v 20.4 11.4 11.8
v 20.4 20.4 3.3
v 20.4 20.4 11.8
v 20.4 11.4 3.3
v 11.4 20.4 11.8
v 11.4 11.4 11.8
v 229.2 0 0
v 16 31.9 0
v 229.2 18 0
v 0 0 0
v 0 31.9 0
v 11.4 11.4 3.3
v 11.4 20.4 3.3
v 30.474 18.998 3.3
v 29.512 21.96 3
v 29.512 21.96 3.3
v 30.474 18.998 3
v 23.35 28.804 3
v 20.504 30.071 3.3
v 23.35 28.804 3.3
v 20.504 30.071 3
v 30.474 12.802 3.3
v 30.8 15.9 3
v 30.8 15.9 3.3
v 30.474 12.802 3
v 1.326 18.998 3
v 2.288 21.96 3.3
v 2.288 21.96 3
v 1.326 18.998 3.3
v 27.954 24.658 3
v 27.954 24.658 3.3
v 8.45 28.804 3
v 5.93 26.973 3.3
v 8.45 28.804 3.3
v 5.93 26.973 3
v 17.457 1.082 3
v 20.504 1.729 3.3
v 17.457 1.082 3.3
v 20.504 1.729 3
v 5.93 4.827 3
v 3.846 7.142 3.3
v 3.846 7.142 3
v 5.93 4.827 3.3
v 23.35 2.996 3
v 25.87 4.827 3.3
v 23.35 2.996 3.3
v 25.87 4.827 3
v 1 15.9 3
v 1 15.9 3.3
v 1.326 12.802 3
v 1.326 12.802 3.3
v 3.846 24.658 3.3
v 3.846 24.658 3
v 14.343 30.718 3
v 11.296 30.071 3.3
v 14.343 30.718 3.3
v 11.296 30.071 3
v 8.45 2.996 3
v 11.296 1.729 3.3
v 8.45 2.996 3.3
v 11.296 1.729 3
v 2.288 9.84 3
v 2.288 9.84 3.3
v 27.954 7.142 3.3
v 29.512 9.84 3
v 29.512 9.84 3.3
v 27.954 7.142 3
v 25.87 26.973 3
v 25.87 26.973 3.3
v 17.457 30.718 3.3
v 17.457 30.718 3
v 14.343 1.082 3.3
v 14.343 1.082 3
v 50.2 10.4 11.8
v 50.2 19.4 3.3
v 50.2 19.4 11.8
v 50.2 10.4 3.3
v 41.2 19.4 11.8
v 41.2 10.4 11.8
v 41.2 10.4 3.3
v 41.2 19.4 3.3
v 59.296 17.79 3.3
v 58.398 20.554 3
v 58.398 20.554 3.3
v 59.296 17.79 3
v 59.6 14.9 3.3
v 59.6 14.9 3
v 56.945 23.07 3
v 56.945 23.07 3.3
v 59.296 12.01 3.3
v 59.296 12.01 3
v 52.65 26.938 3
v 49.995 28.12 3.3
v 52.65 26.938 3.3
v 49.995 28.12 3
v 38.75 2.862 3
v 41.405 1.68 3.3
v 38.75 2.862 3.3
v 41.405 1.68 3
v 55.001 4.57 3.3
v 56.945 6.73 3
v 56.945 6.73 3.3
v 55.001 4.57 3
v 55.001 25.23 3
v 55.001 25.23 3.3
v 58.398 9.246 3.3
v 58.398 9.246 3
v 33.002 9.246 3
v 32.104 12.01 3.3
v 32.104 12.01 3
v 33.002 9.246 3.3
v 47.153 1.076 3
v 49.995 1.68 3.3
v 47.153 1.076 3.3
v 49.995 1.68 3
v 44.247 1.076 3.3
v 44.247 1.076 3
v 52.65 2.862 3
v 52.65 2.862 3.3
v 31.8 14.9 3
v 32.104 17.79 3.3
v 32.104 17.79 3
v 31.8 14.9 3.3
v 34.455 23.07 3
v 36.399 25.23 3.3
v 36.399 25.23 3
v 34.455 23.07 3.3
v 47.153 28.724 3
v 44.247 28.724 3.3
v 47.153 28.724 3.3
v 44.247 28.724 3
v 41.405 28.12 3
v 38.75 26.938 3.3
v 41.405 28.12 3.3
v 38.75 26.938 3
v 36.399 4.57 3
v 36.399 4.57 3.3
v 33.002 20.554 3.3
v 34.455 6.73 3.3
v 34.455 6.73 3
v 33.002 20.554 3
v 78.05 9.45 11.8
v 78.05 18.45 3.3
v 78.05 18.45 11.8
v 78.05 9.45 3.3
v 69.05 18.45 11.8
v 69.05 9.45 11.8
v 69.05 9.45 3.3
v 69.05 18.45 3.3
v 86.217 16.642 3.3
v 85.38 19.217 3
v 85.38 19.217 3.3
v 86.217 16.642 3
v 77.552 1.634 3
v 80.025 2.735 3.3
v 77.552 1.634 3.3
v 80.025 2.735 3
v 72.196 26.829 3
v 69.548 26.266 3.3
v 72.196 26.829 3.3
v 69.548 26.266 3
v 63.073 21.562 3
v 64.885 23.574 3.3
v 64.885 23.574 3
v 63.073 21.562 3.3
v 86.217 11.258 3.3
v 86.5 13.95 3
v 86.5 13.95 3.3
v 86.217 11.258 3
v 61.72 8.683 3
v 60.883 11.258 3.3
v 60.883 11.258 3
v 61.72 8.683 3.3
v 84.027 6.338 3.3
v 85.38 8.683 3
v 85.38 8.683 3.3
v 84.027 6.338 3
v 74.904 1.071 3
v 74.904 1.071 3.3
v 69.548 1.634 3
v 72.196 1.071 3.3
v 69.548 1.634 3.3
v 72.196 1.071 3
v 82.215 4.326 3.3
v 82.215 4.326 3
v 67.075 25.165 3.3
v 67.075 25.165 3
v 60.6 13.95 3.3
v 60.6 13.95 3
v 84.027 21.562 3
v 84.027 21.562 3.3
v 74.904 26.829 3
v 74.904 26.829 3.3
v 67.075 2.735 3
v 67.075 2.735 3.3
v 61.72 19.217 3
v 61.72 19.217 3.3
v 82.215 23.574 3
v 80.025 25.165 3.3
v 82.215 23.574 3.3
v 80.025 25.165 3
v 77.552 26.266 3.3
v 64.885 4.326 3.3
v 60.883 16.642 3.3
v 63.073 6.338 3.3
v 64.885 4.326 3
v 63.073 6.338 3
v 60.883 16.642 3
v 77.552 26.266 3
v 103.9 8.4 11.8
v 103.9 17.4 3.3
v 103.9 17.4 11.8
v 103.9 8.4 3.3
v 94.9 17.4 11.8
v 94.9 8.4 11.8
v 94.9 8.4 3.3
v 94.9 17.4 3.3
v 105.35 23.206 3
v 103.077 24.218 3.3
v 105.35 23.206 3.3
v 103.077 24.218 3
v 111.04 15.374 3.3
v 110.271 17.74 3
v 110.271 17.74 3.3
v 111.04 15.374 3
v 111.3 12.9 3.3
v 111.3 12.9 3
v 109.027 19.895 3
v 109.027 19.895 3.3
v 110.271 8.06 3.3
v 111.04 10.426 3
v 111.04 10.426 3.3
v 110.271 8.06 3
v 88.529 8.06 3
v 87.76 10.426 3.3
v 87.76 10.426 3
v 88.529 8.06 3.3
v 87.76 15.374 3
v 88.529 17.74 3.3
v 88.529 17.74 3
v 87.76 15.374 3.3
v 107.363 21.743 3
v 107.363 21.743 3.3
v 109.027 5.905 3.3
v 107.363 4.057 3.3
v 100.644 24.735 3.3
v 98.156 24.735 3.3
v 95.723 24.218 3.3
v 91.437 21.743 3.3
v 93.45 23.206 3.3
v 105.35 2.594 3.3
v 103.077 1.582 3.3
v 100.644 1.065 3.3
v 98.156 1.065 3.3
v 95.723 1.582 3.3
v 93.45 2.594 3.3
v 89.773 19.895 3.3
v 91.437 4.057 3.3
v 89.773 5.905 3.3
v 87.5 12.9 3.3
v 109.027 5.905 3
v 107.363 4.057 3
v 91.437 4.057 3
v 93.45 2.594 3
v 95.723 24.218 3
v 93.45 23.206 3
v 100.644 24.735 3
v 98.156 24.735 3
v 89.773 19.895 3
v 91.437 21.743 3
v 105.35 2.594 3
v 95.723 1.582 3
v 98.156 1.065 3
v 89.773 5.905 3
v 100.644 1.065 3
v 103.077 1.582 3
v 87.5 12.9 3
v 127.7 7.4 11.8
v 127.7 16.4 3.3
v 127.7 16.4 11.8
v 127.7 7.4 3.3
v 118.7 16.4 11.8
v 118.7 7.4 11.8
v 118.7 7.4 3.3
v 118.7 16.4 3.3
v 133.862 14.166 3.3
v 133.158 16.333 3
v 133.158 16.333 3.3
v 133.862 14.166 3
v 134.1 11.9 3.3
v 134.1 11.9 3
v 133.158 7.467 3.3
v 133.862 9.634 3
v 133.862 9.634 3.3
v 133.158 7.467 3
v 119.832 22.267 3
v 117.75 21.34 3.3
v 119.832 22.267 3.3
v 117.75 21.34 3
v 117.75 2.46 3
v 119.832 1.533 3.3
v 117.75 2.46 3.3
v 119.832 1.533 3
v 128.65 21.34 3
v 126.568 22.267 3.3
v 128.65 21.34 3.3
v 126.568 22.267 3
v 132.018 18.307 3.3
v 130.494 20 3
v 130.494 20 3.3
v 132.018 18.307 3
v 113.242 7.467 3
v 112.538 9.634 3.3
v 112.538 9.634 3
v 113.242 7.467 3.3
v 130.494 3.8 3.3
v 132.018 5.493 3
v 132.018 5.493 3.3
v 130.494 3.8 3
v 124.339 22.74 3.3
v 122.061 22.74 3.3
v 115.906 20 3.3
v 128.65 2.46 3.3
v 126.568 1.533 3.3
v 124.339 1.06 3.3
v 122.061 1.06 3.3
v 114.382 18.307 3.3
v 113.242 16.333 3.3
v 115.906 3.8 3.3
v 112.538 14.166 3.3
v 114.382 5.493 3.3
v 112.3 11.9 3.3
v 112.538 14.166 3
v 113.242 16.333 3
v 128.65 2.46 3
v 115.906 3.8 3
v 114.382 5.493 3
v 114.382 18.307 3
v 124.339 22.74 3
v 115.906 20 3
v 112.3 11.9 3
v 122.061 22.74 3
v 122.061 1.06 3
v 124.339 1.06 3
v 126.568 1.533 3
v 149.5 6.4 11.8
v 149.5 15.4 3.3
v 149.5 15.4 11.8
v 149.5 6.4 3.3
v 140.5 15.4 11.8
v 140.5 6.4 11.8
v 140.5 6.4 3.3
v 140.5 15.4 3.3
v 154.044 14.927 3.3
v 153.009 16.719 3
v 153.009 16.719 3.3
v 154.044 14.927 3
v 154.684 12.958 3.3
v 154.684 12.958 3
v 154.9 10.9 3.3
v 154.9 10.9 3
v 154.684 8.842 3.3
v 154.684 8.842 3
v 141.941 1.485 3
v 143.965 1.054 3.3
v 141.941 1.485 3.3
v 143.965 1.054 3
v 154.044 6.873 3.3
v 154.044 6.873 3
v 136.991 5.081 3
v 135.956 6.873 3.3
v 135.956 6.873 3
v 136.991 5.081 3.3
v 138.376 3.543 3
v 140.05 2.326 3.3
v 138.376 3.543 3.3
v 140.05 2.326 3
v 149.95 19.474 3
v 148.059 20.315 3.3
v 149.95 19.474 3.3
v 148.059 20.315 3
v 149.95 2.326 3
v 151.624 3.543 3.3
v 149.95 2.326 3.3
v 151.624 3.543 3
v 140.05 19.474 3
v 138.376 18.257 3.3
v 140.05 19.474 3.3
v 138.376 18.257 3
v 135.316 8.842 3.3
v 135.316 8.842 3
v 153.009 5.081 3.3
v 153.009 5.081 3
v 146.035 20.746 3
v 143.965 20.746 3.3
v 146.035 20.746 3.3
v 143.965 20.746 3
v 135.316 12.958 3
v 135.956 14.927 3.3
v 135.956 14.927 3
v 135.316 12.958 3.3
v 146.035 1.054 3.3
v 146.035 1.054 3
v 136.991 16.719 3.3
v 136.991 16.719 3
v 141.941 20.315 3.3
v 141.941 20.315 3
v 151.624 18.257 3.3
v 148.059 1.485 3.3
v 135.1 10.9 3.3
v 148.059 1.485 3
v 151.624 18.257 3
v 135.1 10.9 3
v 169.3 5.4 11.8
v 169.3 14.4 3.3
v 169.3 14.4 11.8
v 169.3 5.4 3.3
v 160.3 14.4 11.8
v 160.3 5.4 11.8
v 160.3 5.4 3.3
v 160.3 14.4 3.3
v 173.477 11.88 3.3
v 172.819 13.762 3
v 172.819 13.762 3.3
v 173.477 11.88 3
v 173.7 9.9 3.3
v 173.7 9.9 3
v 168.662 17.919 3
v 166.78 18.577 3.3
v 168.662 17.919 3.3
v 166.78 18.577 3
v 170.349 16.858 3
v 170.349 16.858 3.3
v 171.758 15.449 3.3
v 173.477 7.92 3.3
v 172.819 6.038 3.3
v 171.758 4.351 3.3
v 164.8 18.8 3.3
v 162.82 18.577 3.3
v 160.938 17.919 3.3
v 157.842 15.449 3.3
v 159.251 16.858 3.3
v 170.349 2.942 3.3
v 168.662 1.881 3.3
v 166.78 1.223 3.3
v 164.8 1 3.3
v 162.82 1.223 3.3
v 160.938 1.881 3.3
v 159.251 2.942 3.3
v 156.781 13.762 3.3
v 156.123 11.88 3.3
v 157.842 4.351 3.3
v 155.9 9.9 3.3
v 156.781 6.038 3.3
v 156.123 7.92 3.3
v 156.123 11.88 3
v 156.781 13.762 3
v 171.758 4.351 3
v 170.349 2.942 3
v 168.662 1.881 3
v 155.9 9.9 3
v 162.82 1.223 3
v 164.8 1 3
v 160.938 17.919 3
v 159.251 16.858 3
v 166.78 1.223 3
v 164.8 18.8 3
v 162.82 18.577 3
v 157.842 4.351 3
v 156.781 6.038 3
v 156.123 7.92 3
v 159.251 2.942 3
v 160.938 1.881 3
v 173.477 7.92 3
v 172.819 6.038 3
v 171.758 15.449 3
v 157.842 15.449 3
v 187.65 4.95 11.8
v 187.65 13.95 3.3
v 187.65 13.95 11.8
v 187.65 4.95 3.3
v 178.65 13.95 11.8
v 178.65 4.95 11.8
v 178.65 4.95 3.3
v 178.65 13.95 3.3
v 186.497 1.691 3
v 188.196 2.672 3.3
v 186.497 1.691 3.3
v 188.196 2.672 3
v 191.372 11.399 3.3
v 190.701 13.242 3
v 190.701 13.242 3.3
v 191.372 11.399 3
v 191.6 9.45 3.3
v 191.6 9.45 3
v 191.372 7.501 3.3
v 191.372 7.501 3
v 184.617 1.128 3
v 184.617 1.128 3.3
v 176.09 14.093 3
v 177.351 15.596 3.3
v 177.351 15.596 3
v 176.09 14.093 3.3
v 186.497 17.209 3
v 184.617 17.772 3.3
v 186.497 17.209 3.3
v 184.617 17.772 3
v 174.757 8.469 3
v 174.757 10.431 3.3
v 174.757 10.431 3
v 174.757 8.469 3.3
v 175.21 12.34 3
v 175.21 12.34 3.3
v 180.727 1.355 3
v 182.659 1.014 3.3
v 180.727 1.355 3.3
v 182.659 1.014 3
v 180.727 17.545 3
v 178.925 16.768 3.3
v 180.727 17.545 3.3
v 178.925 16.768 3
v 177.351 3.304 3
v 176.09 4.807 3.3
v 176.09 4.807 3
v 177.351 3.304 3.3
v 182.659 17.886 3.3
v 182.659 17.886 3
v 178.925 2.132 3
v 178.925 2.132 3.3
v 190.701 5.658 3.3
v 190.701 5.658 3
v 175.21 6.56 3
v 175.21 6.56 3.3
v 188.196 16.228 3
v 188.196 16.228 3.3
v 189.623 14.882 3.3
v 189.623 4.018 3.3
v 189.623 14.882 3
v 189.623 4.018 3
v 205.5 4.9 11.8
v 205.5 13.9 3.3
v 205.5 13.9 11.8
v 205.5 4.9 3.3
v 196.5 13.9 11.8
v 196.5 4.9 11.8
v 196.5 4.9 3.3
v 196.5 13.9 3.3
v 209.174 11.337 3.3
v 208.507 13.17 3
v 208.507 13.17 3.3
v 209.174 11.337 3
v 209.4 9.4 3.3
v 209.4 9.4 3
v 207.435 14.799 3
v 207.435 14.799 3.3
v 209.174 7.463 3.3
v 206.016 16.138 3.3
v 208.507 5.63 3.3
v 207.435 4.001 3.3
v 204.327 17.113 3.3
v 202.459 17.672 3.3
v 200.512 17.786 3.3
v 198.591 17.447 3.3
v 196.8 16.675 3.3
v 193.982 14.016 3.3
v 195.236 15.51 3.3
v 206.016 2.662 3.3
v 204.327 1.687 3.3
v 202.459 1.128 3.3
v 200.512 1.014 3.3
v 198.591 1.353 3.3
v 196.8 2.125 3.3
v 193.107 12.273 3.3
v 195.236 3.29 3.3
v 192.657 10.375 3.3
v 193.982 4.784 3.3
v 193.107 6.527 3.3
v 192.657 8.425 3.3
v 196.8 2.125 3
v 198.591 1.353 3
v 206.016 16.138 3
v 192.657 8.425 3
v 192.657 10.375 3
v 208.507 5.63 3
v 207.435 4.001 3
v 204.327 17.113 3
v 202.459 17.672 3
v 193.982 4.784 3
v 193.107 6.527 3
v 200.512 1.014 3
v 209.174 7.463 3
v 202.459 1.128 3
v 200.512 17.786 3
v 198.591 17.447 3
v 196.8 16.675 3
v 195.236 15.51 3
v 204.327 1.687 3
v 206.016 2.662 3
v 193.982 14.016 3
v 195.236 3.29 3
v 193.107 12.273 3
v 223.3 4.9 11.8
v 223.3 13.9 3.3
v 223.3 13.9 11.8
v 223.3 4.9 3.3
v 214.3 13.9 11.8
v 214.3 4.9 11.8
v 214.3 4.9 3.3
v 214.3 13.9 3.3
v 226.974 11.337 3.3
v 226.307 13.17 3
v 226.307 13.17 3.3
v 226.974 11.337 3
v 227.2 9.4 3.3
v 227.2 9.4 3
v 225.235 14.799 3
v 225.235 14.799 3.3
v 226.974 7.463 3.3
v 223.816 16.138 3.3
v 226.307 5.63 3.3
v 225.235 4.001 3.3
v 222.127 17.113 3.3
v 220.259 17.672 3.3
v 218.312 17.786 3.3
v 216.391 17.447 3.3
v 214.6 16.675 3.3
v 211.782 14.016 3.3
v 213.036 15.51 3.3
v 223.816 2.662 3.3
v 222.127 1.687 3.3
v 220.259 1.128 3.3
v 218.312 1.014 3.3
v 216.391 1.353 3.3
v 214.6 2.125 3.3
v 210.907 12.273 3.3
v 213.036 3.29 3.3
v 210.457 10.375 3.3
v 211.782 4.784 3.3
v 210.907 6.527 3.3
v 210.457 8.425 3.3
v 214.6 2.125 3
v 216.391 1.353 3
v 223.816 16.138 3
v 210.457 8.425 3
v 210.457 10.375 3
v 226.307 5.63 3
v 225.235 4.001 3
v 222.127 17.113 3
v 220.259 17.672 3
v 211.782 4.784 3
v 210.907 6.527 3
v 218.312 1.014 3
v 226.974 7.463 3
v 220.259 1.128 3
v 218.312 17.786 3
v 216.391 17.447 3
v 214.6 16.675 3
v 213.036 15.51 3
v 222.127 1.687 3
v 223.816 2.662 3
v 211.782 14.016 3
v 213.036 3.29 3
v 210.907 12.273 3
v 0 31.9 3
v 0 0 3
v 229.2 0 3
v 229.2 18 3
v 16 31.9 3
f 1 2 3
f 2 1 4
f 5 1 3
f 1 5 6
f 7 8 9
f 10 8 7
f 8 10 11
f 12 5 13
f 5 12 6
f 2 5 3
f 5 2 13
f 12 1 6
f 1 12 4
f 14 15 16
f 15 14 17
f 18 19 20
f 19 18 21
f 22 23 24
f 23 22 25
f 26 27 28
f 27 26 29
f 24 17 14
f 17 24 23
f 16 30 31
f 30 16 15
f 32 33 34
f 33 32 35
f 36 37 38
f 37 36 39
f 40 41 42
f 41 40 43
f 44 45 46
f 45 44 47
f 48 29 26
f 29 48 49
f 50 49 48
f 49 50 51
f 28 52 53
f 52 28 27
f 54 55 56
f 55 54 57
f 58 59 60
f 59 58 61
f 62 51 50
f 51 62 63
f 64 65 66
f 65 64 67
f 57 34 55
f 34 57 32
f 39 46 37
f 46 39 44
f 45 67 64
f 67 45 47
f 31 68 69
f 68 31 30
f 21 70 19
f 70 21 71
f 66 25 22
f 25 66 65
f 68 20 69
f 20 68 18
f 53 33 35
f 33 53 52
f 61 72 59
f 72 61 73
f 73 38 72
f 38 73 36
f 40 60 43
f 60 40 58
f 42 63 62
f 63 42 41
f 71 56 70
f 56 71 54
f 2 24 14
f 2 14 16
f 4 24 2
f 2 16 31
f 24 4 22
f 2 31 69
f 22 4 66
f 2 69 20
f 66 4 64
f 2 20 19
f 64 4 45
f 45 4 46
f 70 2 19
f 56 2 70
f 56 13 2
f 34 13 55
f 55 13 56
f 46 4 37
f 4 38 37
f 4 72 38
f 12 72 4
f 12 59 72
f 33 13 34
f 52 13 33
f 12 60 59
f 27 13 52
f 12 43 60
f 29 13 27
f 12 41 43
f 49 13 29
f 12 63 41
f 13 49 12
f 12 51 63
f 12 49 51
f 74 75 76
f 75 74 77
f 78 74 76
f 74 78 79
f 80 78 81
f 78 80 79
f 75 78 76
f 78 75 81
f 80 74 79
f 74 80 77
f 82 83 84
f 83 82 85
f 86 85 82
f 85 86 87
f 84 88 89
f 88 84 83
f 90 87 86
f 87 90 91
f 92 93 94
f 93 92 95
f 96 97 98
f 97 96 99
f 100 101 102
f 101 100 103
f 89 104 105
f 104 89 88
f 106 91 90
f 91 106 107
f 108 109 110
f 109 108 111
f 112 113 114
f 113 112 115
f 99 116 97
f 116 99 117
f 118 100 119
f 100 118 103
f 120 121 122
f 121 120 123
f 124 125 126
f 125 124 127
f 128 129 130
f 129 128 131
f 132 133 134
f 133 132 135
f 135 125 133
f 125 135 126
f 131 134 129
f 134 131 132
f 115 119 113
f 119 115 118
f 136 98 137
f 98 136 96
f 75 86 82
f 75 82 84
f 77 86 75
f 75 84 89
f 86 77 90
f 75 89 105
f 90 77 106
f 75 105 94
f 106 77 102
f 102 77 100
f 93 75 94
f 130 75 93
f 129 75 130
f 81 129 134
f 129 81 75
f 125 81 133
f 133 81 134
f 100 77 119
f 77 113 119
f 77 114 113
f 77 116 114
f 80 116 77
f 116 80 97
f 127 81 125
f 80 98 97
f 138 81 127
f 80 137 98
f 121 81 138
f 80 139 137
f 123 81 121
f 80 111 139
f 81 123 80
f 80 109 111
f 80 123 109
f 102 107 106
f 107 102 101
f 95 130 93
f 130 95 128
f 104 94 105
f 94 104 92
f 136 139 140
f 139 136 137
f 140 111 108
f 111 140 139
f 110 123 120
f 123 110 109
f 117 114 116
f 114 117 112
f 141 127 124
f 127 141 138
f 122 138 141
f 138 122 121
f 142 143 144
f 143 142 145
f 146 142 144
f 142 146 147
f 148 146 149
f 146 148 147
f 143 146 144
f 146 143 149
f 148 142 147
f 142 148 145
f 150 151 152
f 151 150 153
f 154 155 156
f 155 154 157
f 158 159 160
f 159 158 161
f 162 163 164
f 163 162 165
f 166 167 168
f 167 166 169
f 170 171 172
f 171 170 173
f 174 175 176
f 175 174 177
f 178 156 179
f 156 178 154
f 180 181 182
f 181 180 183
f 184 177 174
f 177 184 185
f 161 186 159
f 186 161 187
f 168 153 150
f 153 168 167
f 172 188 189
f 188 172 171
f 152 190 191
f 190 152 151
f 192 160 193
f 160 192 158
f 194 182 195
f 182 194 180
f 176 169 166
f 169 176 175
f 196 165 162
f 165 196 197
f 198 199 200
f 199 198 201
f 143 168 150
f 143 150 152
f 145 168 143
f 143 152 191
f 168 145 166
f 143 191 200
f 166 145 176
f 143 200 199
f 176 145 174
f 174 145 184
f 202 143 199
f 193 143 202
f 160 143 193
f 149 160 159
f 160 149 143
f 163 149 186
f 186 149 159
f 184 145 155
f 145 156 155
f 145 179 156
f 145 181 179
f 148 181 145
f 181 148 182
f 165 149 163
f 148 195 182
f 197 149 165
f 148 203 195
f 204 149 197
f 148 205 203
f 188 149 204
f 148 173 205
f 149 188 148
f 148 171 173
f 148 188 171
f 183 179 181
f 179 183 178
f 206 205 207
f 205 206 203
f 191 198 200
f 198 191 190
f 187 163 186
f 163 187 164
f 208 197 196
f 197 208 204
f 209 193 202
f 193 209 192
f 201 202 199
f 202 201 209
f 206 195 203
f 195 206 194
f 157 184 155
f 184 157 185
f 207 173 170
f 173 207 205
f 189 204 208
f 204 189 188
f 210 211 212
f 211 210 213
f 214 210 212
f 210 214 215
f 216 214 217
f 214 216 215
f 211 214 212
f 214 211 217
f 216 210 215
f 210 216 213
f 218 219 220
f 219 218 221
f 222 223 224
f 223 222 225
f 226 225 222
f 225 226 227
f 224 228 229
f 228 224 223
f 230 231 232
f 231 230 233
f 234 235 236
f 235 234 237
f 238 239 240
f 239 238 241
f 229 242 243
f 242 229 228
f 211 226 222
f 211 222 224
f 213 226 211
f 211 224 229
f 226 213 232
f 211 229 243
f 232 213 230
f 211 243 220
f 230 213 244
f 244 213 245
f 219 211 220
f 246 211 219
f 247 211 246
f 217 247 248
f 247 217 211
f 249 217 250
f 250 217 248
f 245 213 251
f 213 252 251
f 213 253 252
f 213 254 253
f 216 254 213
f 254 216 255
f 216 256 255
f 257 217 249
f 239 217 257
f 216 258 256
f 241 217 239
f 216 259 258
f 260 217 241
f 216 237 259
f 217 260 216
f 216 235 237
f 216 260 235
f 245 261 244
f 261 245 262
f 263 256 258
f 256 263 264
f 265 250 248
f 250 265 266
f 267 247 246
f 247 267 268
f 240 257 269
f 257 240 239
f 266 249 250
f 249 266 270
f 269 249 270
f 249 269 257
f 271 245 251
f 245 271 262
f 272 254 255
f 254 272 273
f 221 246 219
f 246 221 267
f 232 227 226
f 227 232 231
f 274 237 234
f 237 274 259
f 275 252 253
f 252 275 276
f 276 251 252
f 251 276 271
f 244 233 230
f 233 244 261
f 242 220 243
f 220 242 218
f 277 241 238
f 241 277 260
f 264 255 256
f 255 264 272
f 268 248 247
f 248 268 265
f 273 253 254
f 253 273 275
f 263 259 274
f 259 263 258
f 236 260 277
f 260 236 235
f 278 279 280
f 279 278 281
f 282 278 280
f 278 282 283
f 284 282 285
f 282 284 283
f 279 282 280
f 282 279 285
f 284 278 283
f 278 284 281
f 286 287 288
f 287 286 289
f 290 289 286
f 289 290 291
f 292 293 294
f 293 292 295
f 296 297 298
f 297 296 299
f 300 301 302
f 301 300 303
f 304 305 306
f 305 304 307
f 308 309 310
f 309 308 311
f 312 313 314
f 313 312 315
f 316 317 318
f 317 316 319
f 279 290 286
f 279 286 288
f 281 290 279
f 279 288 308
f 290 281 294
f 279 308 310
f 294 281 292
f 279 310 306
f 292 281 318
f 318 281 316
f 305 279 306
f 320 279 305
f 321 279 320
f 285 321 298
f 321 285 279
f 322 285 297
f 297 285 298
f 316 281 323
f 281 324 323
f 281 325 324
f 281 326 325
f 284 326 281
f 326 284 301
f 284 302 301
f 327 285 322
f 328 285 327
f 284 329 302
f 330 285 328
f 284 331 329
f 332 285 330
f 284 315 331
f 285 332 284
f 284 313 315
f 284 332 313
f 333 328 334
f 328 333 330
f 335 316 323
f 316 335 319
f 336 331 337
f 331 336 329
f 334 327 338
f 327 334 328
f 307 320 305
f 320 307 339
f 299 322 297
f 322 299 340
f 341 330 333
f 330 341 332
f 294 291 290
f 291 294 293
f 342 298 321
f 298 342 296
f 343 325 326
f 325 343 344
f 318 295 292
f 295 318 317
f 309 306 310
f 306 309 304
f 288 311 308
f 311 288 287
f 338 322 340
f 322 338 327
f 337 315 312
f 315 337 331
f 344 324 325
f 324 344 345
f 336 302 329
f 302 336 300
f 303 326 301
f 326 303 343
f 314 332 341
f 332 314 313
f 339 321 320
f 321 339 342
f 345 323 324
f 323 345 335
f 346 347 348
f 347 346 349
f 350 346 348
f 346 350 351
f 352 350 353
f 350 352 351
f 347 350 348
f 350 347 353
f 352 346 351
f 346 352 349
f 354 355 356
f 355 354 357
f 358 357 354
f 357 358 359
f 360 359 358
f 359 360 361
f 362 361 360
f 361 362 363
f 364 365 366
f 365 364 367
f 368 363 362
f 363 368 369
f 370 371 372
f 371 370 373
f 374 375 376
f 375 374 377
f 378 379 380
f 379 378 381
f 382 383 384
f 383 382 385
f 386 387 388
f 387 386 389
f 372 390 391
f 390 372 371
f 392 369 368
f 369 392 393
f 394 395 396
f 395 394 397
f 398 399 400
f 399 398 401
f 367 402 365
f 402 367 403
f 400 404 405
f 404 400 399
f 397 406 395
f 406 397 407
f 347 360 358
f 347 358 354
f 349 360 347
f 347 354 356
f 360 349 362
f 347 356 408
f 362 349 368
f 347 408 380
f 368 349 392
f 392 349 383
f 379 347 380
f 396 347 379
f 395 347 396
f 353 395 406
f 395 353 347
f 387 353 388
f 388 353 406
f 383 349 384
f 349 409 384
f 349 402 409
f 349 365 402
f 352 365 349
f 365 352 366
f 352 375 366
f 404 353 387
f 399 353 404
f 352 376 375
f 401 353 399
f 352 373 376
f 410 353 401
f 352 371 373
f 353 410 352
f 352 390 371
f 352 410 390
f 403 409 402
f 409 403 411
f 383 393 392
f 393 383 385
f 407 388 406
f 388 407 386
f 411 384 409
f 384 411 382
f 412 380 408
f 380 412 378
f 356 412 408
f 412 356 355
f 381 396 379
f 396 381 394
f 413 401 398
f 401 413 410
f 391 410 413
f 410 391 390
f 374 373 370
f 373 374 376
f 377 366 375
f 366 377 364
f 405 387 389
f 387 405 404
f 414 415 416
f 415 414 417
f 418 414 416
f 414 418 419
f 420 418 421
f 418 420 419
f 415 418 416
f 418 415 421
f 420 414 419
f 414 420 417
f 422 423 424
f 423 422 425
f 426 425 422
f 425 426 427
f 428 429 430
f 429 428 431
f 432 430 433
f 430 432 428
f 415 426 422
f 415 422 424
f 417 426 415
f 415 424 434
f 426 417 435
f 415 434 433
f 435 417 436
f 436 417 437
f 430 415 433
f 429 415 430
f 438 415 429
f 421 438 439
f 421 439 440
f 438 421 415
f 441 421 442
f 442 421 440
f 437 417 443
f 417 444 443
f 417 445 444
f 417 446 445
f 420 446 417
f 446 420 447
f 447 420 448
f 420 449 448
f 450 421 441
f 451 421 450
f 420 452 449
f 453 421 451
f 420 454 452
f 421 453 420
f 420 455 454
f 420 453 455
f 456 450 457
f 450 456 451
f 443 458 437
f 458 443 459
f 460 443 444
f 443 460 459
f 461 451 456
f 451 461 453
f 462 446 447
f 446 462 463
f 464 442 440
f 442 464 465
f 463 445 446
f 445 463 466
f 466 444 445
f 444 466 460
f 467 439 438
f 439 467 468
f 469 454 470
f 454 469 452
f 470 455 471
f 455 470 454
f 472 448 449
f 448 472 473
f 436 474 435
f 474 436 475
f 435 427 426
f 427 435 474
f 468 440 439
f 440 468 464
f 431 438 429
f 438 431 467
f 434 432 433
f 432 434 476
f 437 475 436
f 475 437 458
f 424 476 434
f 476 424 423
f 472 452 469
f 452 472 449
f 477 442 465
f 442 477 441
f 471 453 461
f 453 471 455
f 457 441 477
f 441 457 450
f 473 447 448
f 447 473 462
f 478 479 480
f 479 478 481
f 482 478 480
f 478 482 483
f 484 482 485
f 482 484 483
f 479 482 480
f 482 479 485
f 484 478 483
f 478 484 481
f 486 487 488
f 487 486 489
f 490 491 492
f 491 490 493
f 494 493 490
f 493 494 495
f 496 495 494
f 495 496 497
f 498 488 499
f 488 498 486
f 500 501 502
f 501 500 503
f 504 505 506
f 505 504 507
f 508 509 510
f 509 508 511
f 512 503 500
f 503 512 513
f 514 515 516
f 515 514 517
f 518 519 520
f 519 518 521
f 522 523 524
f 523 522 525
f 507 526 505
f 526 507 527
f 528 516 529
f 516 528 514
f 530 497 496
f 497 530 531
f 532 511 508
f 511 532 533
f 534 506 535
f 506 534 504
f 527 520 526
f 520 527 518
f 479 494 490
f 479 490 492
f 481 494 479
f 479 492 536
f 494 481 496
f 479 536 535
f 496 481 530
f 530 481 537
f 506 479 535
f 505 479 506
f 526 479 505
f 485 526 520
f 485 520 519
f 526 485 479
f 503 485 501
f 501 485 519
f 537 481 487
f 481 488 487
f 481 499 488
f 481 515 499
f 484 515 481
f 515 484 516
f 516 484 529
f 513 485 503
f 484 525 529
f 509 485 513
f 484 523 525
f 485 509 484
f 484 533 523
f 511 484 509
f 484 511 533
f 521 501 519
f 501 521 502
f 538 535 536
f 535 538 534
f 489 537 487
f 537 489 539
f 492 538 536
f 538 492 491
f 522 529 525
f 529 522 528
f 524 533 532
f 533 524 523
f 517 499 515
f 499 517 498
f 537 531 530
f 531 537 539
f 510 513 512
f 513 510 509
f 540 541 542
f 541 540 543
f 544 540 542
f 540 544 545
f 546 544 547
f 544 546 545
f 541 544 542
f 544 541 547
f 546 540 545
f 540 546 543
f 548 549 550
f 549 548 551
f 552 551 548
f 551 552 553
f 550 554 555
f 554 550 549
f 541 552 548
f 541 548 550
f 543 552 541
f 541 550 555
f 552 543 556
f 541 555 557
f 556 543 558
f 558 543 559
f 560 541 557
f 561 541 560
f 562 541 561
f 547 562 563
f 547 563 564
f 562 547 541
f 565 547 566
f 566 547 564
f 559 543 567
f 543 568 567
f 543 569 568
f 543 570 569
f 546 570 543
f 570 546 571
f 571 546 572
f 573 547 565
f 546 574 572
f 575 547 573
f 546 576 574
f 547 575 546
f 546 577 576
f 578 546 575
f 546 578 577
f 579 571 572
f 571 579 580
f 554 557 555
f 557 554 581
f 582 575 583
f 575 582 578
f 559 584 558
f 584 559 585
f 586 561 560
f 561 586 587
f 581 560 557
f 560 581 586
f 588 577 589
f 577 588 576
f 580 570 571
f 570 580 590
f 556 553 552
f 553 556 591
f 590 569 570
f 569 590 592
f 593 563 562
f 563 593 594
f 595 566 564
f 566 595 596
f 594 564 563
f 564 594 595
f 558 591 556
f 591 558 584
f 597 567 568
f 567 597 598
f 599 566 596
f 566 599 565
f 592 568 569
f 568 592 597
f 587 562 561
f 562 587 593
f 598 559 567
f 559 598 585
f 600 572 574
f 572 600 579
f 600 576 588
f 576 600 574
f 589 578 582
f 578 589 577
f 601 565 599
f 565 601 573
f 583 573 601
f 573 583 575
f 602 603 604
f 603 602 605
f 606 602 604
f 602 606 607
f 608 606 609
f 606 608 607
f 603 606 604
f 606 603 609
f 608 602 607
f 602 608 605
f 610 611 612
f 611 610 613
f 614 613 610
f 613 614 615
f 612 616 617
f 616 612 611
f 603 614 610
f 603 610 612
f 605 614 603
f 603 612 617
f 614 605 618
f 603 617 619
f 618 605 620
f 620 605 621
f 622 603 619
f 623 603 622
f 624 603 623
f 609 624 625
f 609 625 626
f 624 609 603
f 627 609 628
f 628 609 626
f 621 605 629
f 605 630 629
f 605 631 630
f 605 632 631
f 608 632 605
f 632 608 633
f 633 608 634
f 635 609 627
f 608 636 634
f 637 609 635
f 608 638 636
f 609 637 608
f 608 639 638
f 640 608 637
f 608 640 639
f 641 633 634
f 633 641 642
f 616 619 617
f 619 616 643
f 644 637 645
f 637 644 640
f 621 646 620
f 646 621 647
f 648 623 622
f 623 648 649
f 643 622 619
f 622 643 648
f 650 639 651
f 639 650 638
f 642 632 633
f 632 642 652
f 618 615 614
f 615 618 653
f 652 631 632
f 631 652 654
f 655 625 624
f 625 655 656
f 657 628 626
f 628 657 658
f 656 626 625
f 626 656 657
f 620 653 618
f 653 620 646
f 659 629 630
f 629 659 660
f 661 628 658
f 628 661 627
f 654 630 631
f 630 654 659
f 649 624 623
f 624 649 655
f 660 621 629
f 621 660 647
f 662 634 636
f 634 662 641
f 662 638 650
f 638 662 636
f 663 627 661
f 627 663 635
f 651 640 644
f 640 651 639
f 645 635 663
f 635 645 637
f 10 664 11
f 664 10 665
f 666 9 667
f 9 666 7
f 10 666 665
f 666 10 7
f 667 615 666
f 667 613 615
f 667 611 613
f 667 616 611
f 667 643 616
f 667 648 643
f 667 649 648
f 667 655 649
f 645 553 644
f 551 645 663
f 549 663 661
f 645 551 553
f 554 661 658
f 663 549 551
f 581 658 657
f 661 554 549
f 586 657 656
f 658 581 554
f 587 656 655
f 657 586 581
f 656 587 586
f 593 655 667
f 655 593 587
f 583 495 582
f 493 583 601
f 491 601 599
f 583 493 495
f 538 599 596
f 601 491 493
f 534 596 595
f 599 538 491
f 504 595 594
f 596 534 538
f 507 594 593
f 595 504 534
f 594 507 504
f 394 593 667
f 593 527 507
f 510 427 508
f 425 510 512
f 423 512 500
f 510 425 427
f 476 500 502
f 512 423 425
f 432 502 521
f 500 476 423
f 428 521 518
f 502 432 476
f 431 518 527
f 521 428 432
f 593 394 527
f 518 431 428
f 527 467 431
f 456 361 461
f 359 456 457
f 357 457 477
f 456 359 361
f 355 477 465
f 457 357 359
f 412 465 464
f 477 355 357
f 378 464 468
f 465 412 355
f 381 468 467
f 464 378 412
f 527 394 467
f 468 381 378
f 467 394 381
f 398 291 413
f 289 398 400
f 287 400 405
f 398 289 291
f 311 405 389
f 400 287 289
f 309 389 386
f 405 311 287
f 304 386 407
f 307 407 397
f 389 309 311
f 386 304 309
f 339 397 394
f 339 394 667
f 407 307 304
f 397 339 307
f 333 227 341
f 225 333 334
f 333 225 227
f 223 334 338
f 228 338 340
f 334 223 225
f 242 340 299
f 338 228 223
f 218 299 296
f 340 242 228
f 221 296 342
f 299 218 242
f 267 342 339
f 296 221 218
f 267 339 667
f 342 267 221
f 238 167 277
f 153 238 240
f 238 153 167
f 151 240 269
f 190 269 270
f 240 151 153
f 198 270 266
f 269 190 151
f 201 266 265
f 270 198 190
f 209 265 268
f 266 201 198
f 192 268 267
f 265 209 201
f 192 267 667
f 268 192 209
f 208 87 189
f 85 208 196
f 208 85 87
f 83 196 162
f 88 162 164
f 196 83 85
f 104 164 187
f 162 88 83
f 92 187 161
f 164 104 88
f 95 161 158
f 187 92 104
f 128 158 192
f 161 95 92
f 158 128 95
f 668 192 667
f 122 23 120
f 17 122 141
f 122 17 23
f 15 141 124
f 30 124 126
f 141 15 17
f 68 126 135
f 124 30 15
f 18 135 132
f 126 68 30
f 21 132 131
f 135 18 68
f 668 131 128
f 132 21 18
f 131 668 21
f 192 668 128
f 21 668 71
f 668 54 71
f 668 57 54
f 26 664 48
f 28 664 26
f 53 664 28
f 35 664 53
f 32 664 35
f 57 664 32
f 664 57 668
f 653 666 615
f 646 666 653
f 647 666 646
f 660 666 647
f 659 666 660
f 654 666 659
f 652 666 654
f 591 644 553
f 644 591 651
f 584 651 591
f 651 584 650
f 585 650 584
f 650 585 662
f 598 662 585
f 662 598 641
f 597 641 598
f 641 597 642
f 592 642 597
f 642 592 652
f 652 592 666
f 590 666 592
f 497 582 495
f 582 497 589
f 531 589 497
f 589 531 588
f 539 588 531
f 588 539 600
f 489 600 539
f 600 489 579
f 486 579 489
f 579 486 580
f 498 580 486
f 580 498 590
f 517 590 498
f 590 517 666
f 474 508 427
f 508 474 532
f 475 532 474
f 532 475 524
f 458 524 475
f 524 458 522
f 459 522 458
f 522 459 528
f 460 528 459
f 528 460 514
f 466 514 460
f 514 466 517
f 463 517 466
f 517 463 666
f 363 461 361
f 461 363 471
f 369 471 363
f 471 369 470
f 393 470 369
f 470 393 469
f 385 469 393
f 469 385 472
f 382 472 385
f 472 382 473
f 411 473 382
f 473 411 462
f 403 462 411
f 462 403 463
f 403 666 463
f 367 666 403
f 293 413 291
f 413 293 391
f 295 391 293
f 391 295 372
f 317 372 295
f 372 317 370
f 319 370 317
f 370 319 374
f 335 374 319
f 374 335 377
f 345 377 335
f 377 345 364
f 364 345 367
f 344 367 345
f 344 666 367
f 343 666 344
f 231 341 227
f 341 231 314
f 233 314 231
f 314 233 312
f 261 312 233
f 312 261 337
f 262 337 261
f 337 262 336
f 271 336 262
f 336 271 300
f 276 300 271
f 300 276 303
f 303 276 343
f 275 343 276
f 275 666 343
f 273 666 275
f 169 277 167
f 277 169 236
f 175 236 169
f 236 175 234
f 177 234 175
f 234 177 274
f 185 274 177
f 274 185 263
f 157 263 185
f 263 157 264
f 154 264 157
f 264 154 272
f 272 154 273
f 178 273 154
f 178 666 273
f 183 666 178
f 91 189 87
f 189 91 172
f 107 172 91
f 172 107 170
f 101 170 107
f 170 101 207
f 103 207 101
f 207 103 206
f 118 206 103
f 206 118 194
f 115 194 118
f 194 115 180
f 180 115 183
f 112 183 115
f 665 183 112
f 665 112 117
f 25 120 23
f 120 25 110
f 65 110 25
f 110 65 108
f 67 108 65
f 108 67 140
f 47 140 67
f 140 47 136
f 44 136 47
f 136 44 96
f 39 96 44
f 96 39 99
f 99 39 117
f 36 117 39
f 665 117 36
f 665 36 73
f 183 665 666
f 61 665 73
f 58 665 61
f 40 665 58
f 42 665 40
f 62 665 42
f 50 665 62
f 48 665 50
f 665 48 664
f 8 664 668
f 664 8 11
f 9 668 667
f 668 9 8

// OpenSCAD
pad_w = 229.2;
pad_d = 29.9+2;
pad_h = 3;
//cube([pad_w, pad_d, pad_h]);
linear_extrude(height=pad_h)
polygon(points=[
    [0,0],
    [0, pad_d],
    [16, pad_d],
    [pad_w, 18],
    [pad_w, 0]]);

module peg(x, y, d)
{
    w = 9;
    h = 11.8;
    translate([x - w/2, y - w/2, 0])
    {
        cube([w, w, h]);
    }
    translate([x, y, 0])
    cylinder(3.3, d/2, d/2);//just for checking
}
d7_8 = 29.8;
d13_16 = 27.8;
d3_4 = 25.9;
d11_16 = 23.8;
d5_8 = 21.8;
d9_16 = 19.8;
d1_2 = 17.8;
d7_16 = 16.9;
d3_8 = 16.8;
d5_16 = 16.8;

row1 = [
    d7_8,
    d13_16,
    d3_4,
    d11_16,
    d5_8,
    d9_16,
    d1_2,
    d7_16,
    d3_8,
    d5_16
];
interspace = 1.0;
x_vals = [
    for (
        i = 0, accum = 0.0;
        i < len(row1);
        accum = accum + row1[i] + interspace, i = i + 1
    )
    accum
];

for ( i = [ 0 : len(row1) - 1] )
{
    d = row1[i];
    x = interspace + x_vals[i] + d / 2;
    y = d/2 + interspace;
    //y = pad_d / 2;
    peg(x, y, d);
    echo(x + d / 2 + interspace);
}
